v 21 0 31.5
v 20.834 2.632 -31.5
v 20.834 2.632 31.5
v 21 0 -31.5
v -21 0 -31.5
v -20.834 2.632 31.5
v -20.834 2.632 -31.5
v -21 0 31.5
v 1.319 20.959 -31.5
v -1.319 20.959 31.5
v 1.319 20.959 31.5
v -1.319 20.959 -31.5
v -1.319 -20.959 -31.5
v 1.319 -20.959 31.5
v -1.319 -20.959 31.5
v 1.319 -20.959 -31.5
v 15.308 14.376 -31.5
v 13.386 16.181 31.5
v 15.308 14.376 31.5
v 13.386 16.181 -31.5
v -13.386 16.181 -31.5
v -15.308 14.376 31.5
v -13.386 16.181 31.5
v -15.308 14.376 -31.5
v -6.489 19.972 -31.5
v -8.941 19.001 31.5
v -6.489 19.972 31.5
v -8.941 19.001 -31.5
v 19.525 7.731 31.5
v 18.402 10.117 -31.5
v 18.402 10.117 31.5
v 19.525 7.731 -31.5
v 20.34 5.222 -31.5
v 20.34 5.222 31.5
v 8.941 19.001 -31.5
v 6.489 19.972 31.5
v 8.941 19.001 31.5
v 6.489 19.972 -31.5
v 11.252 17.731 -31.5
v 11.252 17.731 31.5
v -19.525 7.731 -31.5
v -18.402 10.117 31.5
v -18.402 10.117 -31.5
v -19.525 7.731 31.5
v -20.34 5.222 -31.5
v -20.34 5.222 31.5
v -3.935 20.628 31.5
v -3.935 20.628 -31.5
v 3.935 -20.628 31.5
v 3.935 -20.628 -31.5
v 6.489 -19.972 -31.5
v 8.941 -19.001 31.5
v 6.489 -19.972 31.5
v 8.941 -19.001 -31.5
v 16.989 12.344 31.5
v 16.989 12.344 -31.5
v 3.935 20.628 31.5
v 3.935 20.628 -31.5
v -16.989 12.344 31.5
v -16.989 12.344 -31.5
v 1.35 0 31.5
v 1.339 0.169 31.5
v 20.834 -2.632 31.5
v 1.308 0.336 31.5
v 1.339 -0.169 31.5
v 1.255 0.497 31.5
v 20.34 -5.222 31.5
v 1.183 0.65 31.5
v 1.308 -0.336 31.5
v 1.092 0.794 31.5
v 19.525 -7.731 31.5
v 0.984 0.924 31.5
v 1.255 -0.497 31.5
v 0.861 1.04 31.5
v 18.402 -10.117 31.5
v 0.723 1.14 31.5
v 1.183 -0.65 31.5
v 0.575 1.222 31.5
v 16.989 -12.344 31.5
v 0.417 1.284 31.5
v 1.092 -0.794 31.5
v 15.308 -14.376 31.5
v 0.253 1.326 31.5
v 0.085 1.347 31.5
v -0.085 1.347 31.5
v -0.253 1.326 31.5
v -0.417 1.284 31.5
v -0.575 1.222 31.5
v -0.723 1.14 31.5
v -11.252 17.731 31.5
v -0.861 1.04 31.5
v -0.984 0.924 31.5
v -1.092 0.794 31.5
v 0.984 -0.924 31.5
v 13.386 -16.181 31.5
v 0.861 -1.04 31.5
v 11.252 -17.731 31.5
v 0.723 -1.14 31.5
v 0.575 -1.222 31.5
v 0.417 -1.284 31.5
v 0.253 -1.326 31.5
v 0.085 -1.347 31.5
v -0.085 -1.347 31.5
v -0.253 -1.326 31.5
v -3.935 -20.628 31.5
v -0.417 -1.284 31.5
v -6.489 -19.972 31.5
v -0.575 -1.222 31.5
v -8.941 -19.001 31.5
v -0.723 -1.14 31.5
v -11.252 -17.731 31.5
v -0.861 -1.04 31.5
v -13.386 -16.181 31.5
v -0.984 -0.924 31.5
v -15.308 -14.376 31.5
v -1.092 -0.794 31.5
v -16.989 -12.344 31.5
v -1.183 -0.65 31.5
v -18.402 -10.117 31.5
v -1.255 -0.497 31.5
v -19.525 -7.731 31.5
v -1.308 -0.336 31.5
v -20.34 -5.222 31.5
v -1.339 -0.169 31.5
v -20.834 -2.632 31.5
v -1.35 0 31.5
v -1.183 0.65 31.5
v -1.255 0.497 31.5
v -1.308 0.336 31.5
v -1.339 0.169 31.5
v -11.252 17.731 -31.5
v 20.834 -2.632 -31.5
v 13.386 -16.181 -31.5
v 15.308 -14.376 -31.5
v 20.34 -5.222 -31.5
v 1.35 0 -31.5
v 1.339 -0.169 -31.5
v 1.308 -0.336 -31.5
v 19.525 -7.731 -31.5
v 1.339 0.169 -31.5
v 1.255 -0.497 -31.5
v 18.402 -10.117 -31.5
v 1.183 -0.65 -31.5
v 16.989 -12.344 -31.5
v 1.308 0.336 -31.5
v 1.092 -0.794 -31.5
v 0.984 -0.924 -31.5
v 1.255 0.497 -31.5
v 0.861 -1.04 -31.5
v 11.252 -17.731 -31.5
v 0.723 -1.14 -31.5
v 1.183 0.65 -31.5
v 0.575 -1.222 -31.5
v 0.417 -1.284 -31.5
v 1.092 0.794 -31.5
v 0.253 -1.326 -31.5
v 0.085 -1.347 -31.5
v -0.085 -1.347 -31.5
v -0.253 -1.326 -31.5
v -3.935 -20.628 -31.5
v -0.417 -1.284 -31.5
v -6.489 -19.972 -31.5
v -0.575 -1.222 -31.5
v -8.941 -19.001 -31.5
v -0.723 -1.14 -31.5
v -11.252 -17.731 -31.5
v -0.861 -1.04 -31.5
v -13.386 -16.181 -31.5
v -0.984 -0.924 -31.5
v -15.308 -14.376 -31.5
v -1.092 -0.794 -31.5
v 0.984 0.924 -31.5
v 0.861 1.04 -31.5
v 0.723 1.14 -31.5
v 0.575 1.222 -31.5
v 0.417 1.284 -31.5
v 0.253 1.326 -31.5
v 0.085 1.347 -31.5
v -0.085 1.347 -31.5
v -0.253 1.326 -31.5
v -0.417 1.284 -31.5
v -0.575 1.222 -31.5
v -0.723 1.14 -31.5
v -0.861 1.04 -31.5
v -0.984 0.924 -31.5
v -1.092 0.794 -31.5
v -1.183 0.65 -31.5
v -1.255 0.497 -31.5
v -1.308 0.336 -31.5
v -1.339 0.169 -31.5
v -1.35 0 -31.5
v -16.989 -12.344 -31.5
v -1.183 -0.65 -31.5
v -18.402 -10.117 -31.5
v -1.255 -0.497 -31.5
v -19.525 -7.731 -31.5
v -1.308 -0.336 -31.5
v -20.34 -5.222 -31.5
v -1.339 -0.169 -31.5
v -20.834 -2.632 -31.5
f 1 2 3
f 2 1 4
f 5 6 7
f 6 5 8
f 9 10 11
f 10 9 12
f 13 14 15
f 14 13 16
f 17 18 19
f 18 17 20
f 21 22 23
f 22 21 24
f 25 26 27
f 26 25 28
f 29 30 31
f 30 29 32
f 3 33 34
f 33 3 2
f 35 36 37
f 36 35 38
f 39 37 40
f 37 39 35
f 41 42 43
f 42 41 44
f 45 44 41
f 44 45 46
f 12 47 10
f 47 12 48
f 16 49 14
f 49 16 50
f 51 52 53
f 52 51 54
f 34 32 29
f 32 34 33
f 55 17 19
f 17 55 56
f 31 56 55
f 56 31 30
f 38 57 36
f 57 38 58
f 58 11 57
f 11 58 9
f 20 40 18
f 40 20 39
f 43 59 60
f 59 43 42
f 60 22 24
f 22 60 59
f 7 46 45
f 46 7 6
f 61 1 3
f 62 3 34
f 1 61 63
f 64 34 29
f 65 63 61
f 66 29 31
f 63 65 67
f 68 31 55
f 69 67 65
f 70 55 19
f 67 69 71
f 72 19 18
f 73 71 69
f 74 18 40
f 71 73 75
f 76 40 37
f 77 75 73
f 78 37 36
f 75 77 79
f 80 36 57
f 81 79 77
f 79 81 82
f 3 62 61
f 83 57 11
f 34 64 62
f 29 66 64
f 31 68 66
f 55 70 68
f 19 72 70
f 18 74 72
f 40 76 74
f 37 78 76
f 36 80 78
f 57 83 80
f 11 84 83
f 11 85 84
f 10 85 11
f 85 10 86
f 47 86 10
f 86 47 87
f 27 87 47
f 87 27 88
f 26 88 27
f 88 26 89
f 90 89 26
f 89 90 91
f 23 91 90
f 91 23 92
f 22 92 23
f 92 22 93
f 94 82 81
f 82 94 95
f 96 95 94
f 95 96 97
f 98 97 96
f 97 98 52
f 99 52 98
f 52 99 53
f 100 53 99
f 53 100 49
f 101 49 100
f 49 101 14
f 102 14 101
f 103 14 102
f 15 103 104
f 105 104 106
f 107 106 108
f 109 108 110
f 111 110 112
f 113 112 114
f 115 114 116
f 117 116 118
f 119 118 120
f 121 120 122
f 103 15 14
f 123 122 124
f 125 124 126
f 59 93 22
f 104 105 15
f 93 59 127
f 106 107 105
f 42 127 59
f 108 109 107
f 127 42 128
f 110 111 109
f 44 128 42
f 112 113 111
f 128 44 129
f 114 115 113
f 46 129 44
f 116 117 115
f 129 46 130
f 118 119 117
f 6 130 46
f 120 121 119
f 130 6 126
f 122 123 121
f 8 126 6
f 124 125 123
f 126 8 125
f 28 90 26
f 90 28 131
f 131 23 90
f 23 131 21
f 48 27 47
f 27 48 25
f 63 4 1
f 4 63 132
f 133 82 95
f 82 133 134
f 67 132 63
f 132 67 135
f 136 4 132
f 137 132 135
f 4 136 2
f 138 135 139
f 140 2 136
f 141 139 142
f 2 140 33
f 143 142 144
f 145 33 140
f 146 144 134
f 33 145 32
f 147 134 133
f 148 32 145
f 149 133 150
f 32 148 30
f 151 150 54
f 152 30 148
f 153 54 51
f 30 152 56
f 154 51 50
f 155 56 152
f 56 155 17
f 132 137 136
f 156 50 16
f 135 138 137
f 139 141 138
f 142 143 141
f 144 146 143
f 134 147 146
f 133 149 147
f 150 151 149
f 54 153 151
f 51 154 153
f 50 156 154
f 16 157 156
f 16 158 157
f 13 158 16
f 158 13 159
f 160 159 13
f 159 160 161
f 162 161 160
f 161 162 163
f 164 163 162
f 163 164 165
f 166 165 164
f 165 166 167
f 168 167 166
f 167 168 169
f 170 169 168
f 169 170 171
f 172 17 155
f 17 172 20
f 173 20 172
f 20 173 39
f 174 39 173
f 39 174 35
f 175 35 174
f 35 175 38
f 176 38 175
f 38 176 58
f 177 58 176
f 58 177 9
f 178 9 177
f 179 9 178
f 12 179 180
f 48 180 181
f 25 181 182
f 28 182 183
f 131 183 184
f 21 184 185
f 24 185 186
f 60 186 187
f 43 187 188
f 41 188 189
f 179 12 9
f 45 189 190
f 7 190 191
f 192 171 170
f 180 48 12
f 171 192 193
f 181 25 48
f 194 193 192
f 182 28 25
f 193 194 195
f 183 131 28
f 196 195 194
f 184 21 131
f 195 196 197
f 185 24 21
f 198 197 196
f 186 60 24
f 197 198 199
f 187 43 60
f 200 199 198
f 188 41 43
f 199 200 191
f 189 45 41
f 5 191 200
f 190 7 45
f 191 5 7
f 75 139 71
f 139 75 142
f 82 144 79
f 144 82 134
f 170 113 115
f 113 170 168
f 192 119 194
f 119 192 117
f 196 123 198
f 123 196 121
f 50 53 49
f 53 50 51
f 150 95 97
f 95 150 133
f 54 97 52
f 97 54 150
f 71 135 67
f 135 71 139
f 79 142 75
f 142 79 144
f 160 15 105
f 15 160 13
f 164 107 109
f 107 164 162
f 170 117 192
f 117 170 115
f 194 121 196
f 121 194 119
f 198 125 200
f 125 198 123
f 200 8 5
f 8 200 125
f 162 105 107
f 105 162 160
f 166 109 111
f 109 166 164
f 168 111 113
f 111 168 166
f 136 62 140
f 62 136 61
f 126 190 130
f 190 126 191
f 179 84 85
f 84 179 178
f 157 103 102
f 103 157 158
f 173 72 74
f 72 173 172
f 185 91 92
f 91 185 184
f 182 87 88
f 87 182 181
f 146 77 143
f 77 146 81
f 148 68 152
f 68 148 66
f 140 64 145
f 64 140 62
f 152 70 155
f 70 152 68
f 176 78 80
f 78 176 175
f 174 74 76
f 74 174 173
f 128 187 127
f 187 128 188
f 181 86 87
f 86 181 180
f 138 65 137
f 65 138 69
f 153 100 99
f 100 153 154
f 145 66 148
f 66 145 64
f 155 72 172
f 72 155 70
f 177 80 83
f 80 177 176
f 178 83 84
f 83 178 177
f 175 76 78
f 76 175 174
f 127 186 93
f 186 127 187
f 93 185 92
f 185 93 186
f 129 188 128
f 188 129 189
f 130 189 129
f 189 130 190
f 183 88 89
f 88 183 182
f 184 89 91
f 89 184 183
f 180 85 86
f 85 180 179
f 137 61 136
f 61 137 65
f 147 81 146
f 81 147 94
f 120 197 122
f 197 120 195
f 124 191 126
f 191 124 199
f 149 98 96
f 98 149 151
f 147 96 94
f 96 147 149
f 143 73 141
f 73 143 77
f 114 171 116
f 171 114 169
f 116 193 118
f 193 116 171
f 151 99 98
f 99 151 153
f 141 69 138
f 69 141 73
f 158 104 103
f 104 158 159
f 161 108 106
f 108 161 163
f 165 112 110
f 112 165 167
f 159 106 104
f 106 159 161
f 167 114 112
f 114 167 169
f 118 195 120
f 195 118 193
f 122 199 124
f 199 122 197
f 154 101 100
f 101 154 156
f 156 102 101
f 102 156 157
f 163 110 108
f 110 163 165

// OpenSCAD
$fn = 50;


difference() {
	union() {
		translate(v = [0, 0, -31.5000000000]) {
			cylinder(h = 63, r = 21.0000000000);
		}
	}
	union() {
		translate(v = [0, 0, -100.0000000000]) {
			cylinder(h = 200, r = 1.3500000000);
		}
	}
}
